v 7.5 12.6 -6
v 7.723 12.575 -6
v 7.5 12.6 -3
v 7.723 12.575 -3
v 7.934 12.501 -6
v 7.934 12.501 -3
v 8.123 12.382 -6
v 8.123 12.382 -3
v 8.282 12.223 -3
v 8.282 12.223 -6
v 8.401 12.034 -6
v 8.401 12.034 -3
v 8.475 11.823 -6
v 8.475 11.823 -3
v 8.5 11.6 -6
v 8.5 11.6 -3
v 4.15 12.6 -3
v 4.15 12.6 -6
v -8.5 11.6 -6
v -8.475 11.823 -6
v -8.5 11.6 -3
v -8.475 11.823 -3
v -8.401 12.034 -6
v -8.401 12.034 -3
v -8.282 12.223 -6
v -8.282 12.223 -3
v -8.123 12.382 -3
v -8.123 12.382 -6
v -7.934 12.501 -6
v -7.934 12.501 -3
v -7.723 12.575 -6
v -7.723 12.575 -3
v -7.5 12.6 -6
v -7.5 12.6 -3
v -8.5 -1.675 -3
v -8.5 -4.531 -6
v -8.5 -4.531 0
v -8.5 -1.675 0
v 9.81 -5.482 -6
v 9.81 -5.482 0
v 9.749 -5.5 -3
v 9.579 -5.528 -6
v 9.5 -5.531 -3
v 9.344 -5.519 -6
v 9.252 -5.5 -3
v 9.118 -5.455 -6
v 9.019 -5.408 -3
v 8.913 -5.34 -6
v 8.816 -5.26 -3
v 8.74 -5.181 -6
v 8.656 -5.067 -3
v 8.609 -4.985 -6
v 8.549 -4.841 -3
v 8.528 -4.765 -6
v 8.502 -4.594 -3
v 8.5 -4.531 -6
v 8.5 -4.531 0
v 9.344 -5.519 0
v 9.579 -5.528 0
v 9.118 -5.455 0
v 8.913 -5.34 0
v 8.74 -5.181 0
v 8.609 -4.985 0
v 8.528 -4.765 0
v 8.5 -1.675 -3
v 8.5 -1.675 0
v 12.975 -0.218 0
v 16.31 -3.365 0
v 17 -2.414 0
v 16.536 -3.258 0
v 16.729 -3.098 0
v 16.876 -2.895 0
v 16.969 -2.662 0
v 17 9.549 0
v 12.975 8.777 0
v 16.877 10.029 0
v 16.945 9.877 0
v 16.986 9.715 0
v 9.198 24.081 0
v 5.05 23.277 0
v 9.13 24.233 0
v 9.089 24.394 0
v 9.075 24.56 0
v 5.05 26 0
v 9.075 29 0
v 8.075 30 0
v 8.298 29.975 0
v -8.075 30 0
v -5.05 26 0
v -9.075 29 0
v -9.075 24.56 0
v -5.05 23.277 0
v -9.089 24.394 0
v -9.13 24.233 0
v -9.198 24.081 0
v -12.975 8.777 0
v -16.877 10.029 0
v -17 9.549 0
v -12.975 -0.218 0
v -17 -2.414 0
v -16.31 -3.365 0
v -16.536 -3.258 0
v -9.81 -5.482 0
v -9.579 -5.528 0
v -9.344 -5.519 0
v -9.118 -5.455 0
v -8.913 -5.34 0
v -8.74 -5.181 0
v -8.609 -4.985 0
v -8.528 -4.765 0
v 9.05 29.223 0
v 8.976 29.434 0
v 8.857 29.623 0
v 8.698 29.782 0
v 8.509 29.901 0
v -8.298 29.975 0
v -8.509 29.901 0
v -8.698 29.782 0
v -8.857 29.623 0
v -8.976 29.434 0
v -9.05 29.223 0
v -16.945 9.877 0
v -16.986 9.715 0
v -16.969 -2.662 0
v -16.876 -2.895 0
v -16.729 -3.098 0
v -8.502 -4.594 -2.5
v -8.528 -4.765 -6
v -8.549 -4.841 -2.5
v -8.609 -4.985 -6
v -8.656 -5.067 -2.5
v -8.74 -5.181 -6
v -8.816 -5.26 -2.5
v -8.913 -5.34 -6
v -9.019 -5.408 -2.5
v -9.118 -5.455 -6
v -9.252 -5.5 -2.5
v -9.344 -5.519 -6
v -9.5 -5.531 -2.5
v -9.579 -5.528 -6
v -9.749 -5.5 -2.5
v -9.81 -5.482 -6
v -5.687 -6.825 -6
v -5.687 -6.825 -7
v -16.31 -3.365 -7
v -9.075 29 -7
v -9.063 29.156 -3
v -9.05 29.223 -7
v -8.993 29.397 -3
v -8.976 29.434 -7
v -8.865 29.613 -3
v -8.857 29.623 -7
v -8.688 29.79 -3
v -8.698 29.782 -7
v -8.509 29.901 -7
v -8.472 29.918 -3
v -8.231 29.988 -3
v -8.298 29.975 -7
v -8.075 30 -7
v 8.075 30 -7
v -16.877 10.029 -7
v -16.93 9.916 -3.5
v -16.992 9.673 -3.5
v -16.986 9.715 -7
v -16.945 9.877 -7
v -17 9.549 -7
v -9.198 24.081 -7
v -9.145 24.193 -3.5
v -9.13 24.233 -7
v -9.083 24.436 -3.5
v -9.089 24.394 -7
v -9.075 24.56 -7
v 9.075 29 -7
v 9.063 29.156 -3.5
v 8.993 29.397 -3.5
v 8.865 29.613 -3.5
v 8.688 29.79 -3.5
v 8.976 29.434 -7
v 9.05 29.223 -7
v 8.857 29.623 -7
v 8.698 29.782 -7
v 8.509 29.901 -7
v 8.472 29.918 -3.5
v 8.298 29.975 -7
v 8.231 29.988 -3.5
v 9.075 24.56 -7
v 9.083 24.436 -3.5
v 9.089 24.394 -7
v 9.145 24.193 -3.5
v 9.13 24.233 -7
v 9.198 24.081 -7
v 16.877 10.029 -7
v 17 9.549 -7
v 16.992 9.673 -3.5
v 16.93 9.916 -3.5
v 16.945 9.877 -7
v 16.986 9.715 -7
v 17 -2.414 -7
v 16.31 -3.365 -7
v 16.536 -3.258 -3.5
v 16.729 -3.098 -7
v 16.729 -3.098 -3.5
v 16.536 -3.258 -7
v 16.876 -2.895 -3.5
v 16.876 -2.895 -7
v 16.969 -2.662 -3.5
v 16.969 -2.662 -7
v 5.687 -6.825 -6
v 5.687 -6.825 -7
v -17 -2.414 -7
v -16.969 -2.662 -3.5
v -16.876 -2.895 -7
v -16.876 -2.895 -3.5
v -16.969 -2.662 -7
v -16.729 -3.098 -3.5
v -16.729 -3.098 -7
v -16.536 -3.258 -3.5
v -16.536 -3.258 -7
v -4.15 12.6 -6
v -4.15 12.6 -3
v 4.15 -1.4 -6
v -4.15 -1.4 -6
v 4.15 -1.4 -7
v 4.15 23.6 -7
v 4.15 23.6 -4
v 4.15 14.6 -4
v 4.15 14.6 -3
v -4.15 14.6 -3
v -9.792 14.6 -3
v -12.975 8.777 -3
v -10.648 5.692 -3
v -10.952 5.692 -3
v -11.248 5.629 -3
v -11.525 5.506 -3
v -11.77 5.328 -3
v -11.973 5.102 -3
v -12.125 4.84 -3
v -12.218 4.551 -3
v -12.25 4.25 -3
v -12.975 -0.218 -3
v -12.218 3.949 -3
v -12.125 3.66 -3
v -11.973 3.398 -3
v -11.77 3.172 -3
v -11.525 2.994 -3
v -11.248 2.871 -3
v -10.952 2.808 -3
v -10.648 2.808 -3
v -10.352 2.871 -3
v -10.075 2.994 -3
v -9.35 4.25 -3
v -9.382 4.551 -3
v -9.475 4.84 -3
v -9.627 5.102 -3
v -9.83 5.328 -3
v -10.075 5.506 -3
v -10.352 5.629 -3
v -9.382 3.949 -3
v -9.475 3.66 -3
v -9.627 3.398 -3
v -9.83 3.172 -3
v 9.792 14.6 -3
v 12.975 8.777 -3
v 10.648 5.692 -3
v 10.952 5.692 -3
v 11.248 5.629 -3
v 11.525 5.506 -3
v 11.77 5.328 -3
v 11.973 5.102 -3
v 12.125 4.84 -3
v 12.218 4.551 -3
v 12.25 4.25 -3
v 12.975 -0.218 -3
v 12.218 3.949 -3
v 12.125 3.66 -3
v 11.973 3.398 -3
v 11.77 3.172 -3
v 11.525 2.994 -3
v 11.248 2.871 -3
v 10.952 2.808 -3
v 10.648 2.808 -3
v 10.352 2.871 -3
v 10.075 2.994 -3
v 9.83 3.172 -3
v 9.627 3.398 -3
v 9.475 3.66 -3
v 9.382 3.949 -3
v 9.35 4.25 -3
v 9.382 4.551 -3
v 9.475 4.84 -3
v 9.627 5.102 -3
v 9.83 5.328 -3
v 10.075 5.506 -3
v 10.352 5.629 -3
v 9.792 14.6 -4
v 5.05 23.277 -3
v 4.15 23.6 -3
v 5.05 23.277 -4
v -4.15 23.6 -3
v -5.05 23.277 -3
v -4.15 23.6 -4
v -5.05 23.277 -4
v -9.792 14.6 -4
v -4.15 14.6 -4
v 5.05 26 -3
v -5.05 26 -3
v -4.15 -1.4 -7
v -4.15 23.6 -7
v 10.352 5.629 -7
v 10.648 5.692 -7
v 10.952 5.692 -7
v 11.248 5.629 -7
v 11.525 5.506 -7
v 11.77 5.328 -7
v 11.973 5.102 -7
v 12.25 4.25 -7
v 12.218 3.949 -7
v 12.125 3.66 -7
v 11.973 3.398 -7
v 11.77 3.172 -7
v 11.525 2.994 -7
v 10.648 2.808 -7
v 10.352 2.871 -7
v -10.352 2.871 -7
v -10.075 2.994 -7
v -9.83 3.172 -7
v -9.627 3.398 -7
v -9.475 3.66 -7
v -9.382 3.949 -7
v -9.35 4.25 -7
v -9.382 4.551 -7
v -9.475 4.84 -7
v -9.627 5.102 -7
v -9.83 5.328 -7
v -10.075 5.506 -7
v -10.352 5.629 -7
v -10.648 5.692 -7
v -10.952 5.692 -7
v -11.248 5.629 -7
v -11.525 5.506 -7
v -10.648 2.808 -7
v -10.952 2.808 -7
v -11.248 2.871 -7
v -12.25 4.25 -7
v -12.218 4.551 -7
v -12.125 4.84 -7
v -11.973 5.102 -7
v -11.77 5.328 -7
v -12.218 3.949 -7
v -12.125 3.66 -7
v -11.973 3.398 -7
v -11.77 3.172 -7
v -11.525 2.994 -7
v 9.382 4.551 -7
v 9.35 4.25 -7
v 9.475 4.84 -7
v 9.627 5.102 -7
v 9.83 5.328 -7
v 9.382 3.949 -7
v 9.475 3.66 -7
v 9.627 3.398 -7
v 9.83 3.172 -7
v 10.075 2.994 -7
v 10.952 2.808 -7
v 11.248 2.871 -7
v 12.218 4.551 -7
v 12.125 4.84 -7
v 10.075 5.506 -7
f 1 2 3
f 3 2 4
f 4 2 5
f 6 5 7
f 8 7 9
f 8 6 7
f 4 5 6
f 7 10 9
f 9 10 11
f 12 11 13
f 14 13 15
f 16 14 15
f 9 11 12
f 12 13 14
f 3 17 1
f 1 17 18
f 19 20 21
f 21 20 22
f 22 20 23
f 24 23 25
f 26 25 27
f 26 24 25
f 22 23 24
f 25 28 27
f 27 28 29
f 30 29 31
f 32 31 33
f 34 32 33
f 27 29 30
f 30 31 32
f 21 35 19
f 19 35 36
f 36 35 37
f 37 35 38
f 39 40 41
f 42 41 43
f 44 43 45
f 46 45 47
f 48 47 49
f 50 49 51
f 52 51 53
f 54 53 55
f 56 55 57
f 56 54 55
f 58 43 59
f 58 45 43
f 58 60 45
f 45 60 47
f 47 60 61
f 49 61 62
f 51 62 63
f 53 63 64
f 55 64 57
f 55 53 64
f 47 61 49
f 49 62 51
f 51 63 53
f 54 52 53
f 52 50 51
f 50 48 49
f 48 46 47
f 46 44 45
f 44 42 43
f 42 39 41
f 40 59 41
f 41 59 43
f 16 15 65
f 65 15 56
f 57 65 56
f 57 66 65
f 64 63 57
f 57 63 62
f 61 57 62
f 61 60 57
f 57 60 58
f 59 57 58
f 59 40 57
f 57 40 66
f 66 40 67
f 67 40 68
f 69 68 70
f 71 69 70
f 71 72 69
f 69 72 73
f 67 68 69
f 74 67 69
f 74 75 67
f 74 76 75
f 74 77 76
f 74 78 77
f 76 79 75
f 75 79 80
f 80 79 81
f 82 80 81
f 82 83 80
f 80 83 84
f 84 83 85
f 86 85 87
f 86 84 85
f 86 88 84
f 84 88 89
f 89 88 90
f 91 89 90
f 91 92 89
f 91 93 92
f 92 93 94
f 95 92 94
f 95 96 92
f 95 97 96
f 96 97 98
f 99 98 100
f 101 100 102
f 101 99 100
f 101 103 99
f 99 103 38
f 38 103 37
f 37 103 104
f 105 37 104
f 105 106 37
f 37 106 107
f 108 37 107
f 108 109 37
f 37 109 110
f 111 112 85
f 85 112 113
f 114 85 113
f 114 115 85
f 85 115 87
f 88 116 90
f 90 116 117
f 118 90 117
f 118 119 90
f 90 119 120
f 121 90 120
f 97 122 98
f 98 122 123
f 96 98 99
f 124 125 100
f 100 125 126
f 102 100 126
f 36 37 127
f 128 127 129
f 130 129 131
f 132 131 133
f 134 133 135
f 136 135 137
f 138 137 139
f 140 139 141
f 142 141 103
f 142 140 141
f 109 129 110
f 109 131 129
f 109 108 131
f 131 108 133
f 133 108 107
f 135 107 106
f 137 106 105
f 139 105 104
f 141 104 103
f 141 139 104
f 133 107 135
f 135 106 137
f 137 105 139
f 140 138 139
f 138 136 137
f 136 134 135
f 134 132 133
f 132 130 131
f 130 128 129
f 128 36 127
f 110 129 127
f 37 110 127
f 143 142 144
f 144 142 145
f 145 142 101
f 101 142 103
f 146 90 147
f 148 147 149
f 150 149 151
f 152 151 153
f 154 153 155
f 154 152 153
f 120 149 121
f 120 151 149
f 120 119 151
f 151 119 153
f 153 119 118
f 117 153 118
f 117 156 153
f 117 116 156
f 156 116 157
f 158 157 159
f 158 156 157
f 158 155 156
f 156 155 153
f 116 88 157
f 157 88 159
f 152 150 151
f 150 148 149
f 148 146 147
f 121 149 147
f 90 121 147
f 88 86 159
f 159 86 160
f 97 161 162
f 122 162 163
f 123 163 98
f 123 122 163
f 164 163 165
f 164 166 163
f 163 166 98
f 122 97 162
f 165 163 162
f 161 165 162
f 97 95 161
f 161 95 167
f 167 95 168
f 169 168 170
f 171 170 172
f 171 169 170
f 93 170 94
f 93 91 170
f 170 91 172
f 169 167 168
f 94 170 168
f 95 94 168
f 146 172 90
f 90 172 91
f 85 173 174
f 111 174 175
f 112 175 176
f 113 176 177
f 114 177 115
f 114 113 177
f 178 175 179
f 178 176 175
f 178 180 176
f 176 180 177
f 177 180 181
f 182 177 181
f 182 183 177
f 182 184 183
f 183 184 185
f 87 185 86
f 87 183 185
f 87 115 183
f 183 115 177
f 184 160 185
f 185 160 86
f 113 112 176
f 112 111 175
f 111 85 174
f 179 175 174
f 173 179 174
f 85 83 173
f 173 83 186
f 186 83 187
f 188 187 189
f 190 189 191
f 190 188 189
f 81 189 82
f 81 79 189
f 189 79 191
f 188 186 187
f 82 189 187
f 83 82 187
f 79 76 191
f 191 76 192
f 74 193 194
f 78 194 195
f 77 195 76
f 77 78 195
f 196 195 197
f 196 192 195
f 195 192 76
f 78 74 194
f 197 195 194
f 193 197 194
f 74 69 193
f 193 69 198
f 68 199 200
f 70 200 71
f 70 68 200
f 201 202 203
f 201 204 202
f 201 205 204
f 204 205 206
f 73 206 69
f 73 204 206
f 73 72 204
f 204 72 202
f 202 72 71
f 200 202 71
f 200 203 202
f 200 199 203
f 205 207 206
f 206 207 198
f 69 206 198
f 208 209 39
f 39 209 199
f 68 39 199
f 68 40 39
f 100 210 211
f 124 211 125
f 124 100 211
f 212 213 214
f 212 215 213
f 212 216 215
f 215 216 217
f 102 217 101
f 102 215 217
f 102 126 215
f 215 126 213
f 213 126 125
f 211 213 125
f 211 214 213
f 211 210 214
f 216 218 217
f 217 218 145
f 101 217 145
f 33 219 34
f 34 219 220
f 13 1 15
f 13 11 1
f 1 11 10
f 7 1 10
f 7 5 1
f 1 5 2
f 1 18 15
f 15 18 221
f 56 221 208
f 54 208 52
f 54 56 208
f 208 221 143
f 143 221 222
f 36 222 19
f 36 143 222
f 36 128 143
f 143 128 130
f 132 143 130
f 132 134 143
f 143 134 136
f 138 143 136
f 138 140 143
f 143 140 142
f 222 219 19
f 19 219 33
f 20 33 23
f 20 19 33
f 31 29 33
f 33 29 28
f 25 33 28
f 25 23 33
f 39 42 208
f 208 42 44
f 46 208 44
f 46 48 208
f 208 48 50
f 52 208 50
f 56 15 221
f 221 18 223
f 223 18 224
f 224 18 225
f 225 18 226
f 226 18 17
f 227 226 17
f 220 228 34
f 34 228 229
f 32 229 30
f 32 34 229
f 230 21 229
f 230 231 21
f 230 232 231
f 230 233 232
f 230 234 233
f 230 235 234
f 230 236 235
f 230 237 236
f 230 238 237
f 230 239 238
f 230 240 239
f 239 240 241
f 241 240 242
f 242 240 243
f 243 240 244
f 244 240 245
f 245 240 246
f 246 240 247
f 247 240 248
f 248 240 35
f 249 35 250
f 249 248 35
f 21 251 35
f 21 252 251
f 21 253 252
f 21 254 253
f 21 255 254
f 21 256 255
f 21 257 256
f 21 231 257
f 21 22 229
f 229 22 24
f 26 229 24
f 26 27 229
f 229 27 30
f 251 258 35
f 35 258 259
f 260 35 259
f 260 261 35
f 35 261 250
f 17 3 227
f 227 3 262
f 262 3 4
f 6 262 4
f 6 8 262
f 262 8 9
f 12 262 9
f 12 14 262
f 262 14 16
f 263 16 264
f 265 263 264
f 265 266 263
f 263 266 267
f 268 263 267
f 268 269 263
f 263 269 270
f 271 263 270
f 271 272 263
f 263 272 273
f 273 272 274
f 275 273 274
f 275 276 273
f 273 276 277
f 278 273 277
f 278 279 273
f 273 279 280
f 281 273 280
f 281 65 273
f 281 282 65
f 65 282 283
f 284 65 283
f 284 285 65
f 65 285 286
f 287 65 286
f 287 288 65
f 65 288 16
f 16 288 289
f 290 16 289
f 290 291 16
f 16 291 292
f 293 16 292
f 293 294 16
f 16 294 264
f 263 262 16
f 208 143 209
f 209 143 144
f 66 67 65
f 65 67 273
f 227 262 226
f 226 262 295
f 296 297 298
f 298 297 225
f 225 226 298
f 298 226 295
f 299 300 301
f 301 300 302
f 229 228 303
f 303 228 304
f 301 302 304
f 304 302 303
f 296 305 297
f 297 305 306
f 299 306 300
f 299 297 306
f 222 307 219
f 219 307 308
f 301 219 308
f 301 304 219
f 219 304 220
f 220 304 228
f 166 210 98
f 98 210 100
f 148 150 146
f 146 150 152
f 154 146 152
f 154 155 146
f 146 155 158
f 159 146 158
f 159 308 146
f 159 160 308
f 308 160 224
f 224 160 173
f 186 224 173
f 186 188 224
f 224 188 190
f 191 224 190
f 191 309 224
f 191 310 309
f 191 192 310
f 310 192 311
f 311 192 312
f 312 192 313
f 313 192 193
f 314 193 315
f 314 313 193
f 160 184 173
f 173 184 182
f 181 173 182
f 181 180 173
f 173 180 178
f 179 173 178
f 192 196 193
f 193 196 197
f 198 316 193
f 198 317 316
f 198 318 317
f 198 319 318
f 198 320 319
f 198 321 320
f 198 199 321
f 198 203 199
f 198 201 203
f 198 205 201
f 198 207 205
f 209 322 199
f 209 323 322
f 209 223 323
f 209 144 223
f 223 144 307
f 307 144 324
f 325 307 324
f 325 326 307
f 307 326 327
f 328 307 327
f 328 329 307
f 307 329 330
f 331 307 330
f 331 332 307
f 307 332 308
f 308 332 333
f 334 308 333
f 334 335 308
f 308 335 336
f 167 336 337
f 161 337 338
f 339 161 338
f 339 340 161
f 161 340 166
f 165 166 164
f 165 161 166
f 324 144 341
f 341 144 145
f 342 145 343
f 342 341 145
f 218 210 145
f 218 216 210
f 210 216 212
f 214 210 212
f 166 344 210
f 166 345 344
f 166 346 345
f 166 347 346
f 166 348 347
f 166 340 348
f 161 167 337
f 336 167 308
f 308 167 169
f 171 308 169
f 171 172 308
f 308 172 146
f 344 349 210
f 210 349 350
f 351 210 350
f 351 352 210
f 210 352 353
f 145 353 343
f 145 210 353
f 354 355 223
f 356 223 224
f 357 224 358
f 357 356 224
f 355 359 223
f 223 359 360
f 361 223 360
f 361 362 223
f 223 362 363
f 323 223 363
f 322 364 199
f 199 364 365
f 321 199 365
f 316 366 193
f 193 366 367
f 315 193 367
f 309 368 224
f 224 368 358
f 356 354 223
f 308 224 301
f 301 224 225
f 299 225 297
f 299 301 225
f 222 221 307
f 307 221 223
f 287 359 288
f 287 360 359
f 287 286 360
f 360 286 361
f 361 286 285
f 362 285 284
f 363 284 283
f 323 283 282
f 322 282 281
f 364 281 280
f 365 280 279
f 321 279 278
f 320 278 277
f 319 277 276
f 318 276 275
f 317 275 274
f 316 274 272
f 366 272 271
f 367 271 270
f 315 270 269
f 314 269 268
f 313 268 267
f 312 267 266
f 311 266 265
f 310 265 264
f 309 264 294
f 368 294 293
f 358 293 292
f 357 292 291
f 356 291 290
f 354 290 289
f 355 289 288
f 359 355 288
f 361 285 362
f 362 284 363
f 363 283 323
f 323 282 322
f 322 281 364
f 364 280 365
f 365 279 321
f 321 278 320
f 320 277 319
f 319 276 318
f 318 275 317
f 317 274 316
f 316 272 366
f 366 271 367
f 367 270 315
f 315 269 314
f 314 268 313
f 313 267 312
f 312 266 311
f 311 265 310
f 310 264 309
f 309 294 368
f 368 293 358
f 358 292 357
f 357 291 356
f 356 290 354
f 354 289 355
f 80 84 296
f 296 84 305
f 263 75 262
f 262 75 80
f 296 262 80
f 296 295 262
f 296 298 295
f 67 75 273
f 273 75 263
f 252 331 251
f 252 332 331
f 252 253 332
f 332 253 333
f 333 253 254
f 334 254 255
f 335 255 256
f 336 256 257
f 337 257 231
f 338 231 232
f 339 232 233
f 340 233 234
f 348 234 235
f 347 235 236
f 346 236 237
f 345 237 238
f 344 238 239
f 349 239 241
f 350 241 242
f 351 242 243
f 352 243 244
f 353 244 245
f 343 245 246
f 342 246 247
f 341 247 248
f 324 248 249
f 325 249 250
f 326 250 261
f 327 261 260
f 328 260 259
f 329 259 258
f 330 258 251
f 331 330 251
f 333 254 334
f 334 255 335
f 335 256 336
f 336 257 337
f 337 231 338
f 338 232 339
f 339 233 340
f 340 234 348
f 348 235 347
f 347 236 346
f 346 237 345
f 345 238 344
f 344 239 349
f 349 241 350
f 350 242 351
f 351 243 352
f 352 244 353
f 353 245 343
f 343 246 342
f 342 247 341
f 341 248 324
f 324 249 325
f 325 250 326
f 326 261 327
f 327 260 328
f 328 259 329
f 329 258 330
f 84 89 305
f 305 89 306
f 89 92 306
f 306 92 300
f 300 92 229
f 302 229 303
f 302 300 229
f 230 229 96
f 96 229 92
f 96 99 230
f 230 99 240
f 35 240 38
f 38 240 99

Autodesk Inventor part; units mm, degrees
ref_plane "YZ Plane" through (0, 0, 0) normal (1, 0, 0) x (0, 1, 0)
ref_plane "XZ Plane" through (0, 0, 0) normal (0, 1, 0) x (-1, 0, 0)
ref_plane "XY Plane" through (0, 0, 0) normal (0, 0, 1) x (1, 0, 0)
sketch "Sketch1" plane through (0, 0, 0) normal (0, 0, 1) x (1, 0, 0)
  line L0 (-5, -2.5) -> (5, -2.5) construction
  line L1 (5, -2.5) -> (12.675, 0) construction
  line L2 (-5, -2.5) -> (-12.675, 0)
  line L3 (12.675, 0) -> (-12.675, 0) construction
  line L4 (12.675, 0) -> (12.675, 8.7) construction
  line L5 (-12.675, 0) -> (-12.675, 8.7)
  line L6 (-12.675, 8.7) -> (-4.75, 23.2)
  line L7 (-4.75, 23.2) -> (-4.75, 25.7)
  line L8 (-4.75, 25.7) -> (4.75, 25.7) construction
  line L9 (4.75, 25.7) -> (4.75, 23.2) construction
  line L10 (4.75, 23.2) -> (12.675, 8.7) construction
  line L11 (0, -8.56) -> (0, 31.76) projected
  line L12 (0, 25.7) -> (0, -2.5)
  circle A0 centre (-10.8, 4.25) radius 1.25
  line L13 (-10.8, 4.25) -> (0, 4.25) construction
  line L14 (-4.75, 25.7) -> (0, 25.7)
  line L15 (-5, -2.5) -> (0, -2.5)
  line L16 (-5.05, 23.2766) -> (-12.975, 8.7766)
  line L17 (-12.975, 8.7766) -> (-12.975, -0.2178)
  line L18 (-12.975, -0.2178) -> (-5.0476, -2.8)
  line L19 (-5.0476, -2.8) -> (0.3, -2.8) construction
  line L20 (0.3, -2.8) -> (0.3, 26) construction
  line L21 (0.3, 26) -> (-5.05, 26) construction
  line L22 (-5.05, 26) -> (-5.05, 23.2766)
  line L23 (0, -2.5) -> (0, -2.8)
  line L24 (0, 25.7) -> (0, 26)
  line L25 (0, -2.8) -> (-5.0476, -2.8)
  line L26 (0, 26) -> (-5.05, 26)
  point P0 (0, 0)
  point P1 (0, 0)
  dimension "d0" = 10
  dimension "d1" = 25.35
  dimension "d2" = 2.5
  dimension "d3" = 8.7
  dimension "d4" = 28.2
  dimension "d6" = 2.5
  dimension "d7" = 9.5
  dimension "d42" = 2.5
  dimension "d43" = 10.8
  dimension "d44" = 6.75
  dimension "d53" = 0.3
sketch "Sketch8" plane through (0, 0, 0) normal (0, 0, 1) x (1, 0, 0)
  line L0 (-20, 30) -> (20, 30)
  line L1 (20, 30) -> (20, -10)
  line L2 (20, -10) -> (-20, -10)
  line L3 (-20, -10) -> (-20, 30)
  point P0 (0, 0)
  point P1 (0, -10)
  dimension "d45" = 40
  dimension "d46" = 10
extrude "MainBlock" add sketch "Sketch8" against normal blind 7
extrude "CartridgeCutout" cut sketch "Sketch1" against normal blind 3
sketch "Sketch10" plane through (-10.8, 4.25, 0) normal (0, 0, 1) x (1, 0, 0)
  circle A0 centre (0, 0) radius 1.25 projected
  circle A1 centre (0, 0) radius 1.45
  point P0 (10.8, -4.25)
  dimension "d56" = 0.2
extrude "PinHole" cut sketch "Sketch10" against normal through all contours A0 | A1
mirror "Mirror3" about plane through (0, 26, 0) normal (-1, 0, 0) of "CartridgeCutout", "PinHole"
sketch "Sketch12" plane through (0, 0, -3) normal (0, 0, 1) x (1, 0, 0)
  circle A0 centre (10.8, 4.25) radius 1.45 projected
  circle A1 centre (-10.8, 4.25) radius 1.45 projected
  line L0 (5.05, 26) -> (-5.05, 26) projected
  line L1 (-5.05, 23.2766) -> (-5.05, 26) projected
  line L2 (-12.975, 8.7766) -> (-5.05, 23.2766) projected
  line L3 (-12.975, -0.2178) -> (-12.975, 8.7766) projected
  line L4 (-5.0476, -2.8) -> (-12.975, -0.2178) projected
  line L5 (5.0476, -2.8) -> (-5.0476, -2.8) projected
  line L6 (5.0476, -2.8) -> (12.975, -0.2178) projected
  line L7 (12.975, -0.2178) -> (12.975, 8.7766) projected
  line L8 (12.975, 8.7766) -> (5.05, 23.2766) projected
  line L9 (5.05, 23.2766) -> (5.05, 26) projected
  line L10 (-4.15, 23.6) -> (4.15, 23.6)
  line L11 (4.15, 23.6) -> (4.15, -1.4)
  line L12 (4.15, -1.4) -> (-4.15, -1.4)
  line L13 (-4.15, -1.4) -> (-4.15, 23.6)
  point P0 (0, 0)
  point P1 (0, -1.4)
  dimension "d59" = 8.3
  dimension "d60" = 25
  dimension "d61" = 1.4
extrude "CentreHole" cut sketch "Sketch12" against normal through all contours L10 L11 L12 L13
sketch "Sketch13" plane through (0, 0, 0) normal (0, 0, 1) x (1, 0, 0)
  line L0 (-5.05, 26) -> (5.05, 26) projected
  line L1 (5.05, 26) -> (5.05, 23.2766) projected
  line L2 (5.05, 23.2766) -> (12.975, 8.7766) projected
  line L3 (12.975, 8.7766) -> (12.975, -0.2178) projected
  line L4 (12.975, -0.2178) -> (5.0476, -2.8) projected
  line L5 (5.0476, -2.8) -> (-5.0476, -2.8) projected
  line L6 (-5.0476, -2.8) -> (-12.975, -0.2178) projected
  line L7 (-12.975, -0.2178) -> (-12.975, 8.7766) projected
  line L8 (-12.975, 8.7766) -> (-5.05, 23.2766) projected
  line L9 (-5.05, 23.2766) -> (-5.05, 26) projected
  line L10 (-20, 30) -> (20, 30) projected
  line L11 (-20, -10) -> (-20, 30) projected
  line L12 (20, -10) -> (-20, -10) projected
  line L13 (20, 30) -> (20, -10) projected
  line L14 (-17, 9.8048) -> (-17, -3.1399)
  line L15 (-17, -3.1399) -> (-5.6866, -6.825)
  line L16 (-5.6866, -6.825) -> (5.6866, -6.825)
  line L17 (5.6866, -6.825) -> (17, -3.1399)
  line L18 (17, -3.1399) -> (17, 9.8048)
  line L19 (17, 9.8048) -> (9.075, 24.3048)
  line L20 (9.075, 24.3048) -> (9.075, 30.025)
  line L21 (9.075, 30.025) -> (-9.075, 30.025)
  line L22 (-9.075, 30.025) -> (-9.075, 24.3048)
  line L23 (-9.075, 24.3048) -> (-17, 9.8048)
  point P0 (0, 0)
  dimension "d65" = 4.025
extrude "OutlineCut" cut sketch "Sketch13" against normal through all contours L10 L22 L23 L14 L15 L16 L17 L18 L19 L20 L13 L12 L11
sketch "Sketch14" plane through (0, 0, -3) normal (0, 0, 1) x (1, 0, 0)
  line L0 (-4.15, -1.4) -> (-4.15, 23.6) projected
  line L1 (-4.15, 23.6) -> (4.15, 23.6) projected
  line L2 (4.15, 23.6) -> (4.15, -1.4) projected
  line L3 (4.15, -1.4) -> (-4.15, -1.4) construction
  circle A0 centre (10.8, 4.25) radius 1.45 construction
  circle A1 centre (-10.8, 4.25) radius 1.45 construction
  line L4 (5.05, 26) -> (-5.05, 26) projected
  line L5 (-5.05, 23.2766) -> (-5.05, 26) projected
  line L6 (-12.975, 8.7766) -> (-5.05, 23.2766) projected
  line L7 (-12.975, -0.2178) -> (-12.975, 8.7766) construction
  line L8 (-5.0476, -2.8) -> (-12.975, -0.2178) construction
  line L9 (5.0476, -2.8) -> (-5.0476, -2.8) construction
  line L10 (5.0476, -2.8) -> (12.975, -0.2178) construction
  line L11 (12.975, -0.2178) -> (12.975, 8.7766) construction
  line L12 (12.975, 8.7766) -> (5.05, 23.2766) projected
  line L13 (5.05, 23.2766) -> (5.05, 26) projected
  line L14 (-9.7922, 14.6) -> (-4.15, 14.6)
  line L15 (-12.975, 8.7766) -> (-5.05, 23.2766) projected
  line L16 (-4.15, 23.6) -> (-5.05, 23.2766)
  line L17 (0, -18) -> (0, 38) projected
  line L18 (-4.15, 23.6) -> (-4.15, 14.6)
  line L19 (-4.15, -1.4) -> (-4.15, 23.6) projected
  line L20 (-5.05, 23.2766) -> (-9.7922, 14.6)
  line L21 (-12.975, 8.7766) -> (-5.05, 23.2766) projected
  line L22 (9.7922, 14.6) -> (4.15, 14.6)
  line L23 (4.15, 23.6) -> (5.05, 23.2766)
  line L24 (4.15, 23.6) -> (4.15, 14.6)
  line L25 (5.05, 23.2766) -> (9.7922, 14.6)
  point P0 (0, 0)
  dimension "d70" = 9
extrude "AlignmentGooveCut" cut sketch "Sketch14" against normal blind 1 contours L14 L6 L16 L0 | L23 L12 L22 L2
sketch "Sketch16" plane through (0, 0, 0) normal (0, 0, 1) x (1, 0, 0)
  line L0 (-8.5, 12.6) -> (8.5, 12.6)
  line L1 (8.5, 12.6) -> (8.5, -7.4)
  line L2 (8.5, -7.4) -> (-8.5, -7.4)
  line L3 (-8.5, -7.4) -> (-8.5, 12.6)
  line L4 (4.15, -1.4) -> (-4.15, -1.4) projected
  point P0 (0, 0)
  point P1 (0, -7.4)
  dimension "d73" = 17
  dimension "d74" = 20
  dimension "d75" = 14
extrude "CircuitBoardCut" cut sketch "Sketch16" against normal blind 6
fillet "Fillet3" radius 1 10 edges at (-17, -3.1399, -3.5) (17, -3.1399, -3.5) (17, 9.8048, -3.5) (9.075, 24.3048, -3.5) (9.075, 30, -3.5) (-9.075, 24.3048, -3.5) (-17, 9.8048, -3.5) (-9.075, 30, -3.5) (-8.5, -5.9086, -3) (8.5, -5.9086, -3)
fillet "Fillet3" radius 1 2 edges at (-8.5, 12.6, -4.5) (8.5, 12.6, -4.5)
properties part number "InkjetHolderV4"
